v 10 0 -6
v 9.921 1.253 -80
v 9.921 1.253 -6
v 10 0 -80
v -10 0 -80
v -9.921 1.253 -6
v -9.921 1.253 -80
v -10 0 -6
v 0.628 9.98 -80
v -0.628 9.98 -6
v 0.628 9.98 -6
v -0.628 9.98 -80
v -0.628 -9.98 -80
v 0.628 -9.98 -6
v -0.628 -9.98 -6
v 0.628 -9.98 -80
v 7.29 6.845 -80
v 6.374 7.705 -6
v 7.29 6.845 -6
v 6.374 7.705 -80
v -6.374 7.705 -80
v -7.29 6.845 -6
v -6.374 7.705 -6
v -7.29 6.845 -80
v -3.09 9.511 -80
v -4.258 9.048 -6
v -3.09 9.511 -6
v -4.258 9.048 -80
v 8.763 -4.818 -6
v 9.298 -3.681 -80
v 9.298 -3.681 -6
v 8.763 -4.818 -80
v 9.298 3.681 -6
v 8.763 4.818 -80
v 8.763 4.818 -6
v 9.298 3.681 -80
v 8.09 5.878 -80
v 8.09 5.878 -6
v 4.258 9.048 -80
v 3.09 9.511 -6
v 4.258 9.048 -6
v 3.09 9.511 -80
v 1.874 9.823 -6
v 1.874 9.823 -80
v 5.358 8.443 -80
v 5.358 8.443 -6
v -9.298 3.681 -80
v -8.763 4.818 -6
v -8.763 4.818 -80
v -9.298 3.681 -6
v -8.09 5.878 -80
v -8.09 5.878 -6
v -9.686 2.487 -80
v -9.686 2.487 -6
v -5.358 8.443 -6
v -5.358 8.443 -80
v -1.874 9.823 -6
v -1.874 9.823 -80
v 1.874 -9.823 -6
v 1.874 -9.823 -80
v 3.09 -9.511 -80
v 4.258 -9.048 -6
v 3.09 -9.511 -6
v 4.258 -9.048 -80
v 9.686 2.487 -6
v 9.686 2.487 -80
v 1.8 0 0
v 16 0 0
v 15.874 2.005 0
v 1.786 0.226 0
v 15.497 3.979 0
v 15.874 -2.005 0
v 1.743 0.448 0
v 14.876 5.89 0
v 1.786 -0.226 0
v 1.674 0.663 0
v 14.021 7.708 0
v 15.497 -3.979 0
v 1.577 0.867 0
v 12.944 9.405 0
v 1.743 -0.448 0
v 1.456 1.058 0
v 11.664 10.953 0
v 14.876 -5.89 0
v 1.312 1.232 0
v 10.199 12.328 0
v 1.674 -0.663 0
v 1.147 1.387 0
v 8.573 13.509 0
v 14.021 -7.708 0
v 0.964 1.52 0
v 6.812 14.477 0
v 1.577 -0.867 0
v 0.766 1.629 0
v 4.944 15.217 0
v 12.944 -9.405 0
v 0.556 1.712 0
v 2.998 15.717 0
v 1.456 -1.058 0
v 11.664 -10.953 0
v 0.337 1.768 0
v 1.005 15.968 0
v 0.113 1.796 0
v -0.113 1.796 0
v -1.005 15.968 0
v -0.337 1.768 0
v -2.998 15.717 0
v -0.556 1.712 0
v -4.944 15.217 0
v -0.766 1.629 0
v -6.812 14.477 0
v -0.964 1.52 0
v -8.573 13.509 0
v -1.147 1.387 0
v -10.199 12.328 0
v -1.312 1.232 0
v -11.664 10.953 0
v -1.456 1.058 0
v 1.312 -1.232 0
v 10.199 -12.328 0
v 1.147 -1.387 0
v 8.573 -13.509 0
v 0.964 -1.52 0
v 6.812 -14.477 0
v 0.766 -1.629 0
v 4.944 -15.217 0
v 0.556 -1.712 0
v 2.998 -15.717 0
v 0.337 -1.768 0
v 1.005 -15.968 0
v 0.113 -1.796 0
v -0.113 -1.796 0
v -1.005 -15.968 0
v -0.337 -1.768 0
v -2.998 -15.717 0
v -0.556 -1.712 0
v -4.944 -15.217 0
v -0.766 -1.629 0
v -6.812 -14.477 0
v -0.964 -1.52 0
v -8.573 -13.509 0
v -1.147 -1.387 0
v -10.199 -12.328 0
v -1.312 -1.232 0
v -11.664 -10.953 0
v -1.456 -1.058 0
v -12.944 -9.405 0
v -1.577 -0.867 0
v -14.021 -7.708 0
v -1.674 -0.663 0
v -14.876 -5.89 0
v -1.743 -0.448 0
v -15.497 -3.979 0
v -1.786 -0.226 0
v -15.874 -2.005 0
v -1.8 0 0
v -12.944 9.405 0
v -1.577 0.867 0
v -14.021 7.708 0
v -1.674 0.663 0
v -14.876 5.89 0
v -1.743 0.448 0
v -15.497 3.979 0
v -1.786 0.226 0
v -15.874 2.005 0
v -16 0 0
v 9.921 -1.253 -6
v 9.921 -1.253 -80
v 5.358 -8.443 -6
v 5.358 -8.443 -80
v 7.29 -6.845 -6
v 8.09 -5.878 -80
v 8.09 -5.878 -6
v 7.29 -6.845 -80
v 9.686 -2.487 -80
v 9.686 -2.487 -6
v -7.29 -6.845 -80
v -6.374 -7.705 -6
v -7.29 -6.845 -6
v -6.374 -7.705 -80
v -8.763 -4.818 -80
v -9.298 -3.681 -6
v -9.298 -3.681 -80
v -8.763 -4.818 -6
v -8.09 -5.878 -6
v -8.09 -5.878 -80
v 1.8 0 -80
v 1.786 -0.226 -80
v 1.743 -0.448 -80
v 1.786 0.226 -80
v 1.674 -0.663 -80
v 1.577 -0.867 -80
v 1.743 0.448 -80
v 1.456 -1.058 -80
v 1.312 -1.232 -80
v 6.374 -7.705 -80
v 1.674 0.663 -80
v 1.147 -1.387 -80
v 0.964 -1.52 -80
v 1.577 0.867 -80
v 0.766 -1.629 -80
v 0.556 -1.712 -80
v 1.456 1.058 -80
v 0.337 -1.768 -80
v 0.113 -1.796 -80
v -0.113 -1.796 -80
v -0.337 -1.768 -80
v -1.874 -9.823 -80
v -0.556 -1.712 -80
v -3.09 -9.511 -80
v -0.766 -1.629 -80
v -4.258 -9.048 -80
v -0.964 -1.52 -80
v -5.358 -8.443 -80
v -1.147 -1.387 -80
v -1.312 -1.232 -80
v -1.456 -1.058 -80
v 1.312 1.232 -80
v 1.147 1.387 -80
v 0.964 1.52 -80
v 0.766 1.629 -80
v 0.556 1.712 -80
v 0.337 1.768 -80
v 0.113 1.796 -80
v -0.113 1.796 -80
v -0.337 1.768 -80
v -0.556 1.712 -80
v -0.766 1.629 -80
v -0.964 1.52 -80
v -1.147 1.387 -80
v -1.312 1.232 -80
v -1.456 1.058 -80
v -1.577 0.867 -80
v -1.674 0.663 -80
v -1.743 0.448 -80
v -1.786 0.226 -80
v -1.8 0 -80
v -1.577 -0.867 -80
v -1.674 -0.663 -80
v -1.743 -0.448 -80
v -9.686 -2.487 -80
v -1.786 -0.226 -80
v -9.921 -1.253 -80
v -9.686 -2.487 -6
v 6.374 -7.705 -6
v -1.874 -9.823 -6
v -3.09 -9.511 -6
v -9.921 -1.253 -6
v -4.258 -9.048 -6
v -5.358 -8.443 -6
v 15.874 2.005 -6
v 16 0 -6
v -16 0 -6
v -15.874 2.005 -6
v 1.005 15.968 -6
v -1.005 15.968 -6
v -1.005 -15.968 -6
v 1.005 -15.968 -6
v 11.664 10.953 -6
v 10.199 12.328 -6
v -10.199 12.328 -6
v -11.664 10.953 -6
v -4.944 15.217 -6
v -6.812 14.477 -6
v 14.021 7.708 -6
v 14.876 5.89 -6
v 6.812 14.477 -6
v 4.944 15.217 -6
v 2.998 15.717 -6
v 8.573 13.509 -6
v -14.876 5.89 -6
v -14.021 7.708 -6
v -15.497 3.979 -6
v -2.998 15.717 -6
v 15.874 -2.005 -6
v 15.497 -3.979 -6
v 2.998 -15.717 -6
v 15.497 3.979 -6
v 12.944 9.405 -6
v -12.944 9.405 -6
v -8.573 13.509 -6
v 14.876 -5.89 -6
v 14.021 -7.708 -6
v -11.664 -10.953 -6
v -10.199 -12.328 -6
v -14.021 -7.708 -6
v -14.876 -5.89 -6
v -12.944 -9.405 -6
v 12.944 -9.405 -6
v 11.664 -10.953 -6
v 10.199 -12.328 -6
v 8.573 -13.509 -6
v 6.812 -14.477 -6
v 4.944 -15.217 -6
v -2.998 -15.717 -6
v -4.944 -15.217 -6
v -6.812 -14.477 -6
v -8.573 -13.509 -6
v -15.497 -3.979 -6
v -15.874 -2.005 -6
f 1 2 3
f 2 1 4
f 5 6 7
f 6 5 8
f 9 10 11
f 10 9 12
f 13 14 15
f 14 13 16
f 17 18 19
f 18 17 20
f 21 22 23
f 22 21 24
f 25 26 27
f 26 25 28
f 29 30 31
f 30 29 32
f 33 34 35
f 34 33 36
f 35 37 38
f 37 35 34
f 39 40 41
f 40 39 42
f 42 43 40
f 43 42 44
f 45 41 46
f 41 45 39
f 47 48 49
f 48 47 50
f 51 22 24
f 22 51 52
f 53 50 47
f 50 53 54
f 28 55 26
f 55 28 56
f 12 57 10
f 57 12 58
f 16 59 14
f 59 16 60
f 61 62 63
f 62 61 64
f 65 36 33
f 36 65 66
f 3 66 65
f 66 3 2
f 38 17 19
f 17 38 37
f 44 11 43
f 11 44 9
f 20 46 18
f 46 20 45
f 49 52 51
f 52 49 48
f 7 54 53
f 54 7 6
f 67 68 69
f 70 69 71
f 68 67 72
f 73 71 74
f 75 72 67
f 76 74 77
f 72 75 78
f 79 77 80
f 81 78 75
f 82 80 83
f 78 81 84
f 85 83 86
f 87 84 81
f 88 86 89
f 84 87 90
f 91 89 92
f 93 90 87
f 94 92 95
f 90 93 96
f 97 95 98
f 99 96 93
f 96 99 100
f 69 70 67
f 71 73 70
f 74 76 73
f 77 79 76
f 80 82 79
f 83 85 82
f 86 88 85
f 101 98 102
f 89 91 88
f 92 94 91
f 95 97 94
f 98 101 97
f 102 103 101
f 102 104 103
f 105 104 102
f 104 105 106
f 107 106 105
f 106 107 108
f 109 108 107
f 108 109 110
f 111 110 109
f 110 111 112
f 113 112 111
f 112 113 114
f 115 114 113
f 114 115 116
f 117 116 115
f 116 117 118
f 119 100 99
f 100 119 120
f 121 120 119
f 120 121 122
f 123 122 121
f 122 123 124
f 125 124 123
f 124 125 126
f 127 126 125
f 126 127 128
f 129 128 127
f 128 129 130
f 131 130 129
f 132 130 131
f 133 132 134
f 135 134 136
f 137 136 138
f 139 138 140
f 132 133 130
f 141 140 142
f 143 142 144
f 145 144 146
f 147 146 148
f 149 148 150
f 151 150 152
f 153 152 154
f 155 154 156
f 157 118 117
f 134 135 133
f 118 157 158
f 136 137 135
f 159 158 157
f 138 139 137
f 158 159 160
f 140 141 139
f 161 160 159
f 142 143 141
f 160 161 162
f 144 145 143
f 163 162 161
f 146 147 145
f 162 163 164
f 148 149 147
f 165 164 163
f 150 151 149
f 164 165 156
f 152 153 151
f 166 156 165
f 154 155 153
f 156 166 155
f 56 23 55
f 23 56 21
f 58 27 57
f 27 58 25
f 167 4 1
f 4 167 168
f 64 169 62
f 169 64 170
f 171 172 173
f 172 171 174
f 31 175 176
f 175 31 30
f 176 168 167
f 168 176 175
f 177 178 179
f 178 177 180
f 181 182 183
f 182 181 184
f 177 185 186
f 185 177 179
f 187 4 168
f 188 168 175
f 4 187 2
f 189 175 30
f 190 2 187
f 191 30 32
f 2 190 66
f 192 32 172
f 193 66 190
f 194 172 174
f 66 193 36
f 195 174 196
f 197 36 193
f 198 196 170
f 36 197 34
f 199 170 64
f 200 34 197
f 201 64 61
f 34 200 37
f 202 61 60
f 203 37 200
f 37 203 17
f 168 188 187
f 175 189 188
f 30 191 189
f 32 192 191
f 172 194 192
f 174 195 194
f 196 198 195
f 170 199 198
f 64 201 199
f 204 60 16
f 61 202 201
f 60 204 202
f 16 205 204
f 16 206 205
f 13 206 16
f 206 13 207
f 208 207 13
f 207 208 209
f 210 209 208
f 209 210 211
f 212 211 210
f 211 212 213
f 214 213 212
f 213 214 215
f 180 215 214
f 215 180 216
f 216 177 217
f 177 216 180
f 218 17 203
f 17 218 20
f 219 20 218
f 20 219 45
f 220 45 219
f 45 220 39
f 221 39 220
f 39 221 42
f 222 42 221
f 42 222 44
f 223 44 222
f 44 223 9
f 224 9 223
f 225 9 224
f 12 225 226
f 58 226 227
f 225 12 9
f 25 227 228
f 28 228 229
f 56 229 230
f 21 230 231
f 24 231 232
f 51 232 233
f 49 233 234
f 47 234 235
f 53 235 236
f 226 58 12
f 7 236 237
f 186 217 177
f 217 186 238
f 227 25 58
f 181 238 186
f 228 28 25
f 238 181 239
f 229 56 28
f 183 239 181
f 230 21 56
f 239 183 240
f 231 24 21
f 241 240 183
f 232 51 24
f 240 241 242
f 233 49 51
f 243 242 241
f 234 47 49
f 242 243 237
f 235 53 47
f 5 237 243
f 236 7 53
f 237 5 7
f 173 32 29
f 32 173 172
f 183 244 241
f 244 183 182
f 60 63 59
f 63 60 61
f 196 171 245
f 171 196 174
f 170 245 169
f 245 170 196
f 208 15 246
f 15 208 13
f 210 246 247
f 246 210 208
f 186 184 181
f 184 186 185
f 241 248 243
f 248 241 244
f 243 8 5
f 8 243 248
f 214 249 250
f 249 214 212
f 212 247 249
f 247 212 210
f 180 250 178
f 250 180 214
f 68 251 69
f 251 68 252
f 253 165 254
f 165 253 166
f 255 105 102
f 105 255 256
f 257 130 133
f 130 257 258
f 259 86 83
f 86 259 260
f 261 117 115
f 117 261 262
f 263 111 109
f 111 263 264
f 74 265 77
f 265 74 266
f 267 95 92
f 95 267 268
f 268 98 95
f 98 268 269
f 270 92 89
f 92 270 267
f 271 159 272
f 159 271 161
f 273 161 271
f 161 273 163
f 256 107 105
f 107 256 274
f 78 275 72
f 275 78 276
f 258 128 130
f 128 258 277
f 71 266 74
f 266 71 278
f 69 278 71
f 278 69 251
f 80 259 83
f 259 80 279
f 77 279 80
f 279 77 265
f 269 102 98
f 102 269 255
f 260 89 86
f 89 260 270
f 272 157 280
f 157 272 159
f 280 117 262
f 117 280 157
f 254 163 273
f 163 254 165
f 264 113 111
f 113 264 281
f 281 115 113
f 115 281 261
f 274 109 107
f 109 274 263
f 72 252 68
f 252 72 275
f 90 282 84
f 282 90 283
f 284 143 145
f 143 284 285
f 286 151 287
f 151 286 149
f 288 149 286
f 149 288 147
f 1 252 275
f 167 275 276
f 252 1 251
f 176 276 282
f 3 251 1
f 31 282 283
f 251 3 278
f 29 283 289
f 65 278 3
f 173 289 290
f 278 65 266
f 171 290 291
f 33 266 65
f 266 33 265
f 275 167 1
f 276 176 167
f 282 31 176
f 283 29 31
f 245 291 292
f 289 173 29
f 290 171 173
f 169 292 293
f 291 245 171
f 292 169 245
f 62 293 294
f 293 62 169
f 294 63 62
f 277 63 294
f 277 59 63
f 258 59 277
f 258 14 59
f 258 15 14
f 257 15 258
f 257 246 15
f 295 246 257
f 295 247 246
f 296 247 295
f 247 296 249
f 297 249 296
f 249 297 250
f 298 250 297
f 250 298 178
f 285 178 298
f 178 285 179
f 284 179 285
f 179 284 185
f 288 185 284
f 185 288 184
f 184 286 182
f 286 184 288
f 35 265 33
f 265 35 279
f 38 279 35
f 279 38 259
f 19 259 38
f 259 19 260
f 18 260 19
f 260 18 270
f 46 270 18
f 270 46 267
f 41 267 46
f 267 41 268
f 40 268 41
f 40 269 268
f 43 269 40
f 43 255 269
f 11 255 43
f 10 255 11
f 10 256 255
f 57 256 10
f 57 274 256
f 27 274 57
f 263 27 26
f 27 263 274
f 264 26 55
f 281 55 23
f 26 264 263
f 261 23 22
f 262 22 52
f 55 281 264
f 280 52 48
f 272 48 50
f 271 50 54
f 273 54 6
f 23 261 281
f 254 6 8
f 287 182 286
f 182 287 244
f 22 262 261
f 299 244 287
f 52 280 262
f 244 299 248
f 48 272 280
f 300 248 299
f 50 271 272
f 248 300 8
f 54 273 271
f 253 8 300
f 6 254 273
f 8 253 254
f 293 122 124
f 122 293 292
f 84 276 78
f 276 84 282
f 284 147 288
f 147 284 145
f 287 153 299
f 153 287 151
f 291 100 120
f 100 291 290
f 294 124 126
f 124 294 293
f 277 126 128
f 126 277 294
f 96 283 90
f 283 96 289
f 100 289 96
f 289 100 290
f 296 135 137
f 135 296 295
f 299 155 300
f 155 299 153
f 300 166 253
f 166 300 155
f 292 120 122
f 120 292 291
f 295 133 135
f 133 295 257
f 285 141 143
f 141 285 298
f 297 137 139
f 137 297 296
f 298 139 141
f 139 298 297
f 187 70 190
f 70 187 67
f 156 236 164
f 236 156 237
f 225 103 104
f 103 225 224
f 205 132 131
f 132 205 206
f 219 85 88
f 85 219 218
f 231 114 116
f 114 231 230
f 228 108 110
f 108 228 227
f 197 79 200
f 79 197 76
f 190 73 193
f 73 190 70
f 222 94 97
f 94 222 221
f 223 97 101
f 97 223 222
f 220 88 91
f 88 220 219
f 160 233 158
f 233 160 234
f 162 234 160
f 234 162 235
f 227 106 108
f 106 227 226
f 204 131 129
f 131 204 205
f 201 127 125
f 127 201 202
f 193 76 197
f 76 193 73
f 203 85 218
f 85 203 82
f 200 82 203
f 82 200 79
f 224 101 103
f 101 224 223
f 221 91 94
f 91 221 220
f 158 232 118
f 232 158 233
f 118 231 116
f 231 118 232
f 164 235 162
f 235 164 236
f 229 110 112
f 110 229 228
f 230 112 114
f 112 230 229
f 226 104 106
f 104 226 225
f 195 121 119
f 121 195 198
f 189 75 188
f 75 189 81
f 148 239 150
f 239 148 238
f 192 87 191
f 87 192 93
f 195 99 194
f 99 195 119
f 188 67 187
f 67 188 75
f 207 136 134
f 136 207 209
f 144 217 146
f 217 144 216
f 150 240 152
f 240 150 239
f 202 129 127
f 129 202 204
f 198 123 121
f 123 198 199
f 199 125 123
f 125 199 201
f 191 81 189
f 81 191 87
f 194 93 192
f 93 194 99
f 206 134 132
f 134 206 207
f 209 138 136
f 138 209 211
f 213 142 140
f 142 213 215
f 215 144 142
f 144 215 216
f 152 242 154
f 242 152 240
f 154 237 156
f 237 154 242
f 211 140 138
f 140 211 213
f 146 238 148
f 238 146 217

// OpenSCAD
$fn = 50;


difference() {
	union() {
		translate(v = [0, 0, -80.0000000000]) {
			cylinder(h = 80, r = 10.0000000000);
		}
		translate(v = [0, 0, -6.0000000000]) {
			cylinder(h = 6, r = 16.0000000000);
		}
	}
	union() {
		#translate(v = [0, 0, -80]) {
			cylinder(h = 80, r = 1.8000000000);
		}
	}
}
